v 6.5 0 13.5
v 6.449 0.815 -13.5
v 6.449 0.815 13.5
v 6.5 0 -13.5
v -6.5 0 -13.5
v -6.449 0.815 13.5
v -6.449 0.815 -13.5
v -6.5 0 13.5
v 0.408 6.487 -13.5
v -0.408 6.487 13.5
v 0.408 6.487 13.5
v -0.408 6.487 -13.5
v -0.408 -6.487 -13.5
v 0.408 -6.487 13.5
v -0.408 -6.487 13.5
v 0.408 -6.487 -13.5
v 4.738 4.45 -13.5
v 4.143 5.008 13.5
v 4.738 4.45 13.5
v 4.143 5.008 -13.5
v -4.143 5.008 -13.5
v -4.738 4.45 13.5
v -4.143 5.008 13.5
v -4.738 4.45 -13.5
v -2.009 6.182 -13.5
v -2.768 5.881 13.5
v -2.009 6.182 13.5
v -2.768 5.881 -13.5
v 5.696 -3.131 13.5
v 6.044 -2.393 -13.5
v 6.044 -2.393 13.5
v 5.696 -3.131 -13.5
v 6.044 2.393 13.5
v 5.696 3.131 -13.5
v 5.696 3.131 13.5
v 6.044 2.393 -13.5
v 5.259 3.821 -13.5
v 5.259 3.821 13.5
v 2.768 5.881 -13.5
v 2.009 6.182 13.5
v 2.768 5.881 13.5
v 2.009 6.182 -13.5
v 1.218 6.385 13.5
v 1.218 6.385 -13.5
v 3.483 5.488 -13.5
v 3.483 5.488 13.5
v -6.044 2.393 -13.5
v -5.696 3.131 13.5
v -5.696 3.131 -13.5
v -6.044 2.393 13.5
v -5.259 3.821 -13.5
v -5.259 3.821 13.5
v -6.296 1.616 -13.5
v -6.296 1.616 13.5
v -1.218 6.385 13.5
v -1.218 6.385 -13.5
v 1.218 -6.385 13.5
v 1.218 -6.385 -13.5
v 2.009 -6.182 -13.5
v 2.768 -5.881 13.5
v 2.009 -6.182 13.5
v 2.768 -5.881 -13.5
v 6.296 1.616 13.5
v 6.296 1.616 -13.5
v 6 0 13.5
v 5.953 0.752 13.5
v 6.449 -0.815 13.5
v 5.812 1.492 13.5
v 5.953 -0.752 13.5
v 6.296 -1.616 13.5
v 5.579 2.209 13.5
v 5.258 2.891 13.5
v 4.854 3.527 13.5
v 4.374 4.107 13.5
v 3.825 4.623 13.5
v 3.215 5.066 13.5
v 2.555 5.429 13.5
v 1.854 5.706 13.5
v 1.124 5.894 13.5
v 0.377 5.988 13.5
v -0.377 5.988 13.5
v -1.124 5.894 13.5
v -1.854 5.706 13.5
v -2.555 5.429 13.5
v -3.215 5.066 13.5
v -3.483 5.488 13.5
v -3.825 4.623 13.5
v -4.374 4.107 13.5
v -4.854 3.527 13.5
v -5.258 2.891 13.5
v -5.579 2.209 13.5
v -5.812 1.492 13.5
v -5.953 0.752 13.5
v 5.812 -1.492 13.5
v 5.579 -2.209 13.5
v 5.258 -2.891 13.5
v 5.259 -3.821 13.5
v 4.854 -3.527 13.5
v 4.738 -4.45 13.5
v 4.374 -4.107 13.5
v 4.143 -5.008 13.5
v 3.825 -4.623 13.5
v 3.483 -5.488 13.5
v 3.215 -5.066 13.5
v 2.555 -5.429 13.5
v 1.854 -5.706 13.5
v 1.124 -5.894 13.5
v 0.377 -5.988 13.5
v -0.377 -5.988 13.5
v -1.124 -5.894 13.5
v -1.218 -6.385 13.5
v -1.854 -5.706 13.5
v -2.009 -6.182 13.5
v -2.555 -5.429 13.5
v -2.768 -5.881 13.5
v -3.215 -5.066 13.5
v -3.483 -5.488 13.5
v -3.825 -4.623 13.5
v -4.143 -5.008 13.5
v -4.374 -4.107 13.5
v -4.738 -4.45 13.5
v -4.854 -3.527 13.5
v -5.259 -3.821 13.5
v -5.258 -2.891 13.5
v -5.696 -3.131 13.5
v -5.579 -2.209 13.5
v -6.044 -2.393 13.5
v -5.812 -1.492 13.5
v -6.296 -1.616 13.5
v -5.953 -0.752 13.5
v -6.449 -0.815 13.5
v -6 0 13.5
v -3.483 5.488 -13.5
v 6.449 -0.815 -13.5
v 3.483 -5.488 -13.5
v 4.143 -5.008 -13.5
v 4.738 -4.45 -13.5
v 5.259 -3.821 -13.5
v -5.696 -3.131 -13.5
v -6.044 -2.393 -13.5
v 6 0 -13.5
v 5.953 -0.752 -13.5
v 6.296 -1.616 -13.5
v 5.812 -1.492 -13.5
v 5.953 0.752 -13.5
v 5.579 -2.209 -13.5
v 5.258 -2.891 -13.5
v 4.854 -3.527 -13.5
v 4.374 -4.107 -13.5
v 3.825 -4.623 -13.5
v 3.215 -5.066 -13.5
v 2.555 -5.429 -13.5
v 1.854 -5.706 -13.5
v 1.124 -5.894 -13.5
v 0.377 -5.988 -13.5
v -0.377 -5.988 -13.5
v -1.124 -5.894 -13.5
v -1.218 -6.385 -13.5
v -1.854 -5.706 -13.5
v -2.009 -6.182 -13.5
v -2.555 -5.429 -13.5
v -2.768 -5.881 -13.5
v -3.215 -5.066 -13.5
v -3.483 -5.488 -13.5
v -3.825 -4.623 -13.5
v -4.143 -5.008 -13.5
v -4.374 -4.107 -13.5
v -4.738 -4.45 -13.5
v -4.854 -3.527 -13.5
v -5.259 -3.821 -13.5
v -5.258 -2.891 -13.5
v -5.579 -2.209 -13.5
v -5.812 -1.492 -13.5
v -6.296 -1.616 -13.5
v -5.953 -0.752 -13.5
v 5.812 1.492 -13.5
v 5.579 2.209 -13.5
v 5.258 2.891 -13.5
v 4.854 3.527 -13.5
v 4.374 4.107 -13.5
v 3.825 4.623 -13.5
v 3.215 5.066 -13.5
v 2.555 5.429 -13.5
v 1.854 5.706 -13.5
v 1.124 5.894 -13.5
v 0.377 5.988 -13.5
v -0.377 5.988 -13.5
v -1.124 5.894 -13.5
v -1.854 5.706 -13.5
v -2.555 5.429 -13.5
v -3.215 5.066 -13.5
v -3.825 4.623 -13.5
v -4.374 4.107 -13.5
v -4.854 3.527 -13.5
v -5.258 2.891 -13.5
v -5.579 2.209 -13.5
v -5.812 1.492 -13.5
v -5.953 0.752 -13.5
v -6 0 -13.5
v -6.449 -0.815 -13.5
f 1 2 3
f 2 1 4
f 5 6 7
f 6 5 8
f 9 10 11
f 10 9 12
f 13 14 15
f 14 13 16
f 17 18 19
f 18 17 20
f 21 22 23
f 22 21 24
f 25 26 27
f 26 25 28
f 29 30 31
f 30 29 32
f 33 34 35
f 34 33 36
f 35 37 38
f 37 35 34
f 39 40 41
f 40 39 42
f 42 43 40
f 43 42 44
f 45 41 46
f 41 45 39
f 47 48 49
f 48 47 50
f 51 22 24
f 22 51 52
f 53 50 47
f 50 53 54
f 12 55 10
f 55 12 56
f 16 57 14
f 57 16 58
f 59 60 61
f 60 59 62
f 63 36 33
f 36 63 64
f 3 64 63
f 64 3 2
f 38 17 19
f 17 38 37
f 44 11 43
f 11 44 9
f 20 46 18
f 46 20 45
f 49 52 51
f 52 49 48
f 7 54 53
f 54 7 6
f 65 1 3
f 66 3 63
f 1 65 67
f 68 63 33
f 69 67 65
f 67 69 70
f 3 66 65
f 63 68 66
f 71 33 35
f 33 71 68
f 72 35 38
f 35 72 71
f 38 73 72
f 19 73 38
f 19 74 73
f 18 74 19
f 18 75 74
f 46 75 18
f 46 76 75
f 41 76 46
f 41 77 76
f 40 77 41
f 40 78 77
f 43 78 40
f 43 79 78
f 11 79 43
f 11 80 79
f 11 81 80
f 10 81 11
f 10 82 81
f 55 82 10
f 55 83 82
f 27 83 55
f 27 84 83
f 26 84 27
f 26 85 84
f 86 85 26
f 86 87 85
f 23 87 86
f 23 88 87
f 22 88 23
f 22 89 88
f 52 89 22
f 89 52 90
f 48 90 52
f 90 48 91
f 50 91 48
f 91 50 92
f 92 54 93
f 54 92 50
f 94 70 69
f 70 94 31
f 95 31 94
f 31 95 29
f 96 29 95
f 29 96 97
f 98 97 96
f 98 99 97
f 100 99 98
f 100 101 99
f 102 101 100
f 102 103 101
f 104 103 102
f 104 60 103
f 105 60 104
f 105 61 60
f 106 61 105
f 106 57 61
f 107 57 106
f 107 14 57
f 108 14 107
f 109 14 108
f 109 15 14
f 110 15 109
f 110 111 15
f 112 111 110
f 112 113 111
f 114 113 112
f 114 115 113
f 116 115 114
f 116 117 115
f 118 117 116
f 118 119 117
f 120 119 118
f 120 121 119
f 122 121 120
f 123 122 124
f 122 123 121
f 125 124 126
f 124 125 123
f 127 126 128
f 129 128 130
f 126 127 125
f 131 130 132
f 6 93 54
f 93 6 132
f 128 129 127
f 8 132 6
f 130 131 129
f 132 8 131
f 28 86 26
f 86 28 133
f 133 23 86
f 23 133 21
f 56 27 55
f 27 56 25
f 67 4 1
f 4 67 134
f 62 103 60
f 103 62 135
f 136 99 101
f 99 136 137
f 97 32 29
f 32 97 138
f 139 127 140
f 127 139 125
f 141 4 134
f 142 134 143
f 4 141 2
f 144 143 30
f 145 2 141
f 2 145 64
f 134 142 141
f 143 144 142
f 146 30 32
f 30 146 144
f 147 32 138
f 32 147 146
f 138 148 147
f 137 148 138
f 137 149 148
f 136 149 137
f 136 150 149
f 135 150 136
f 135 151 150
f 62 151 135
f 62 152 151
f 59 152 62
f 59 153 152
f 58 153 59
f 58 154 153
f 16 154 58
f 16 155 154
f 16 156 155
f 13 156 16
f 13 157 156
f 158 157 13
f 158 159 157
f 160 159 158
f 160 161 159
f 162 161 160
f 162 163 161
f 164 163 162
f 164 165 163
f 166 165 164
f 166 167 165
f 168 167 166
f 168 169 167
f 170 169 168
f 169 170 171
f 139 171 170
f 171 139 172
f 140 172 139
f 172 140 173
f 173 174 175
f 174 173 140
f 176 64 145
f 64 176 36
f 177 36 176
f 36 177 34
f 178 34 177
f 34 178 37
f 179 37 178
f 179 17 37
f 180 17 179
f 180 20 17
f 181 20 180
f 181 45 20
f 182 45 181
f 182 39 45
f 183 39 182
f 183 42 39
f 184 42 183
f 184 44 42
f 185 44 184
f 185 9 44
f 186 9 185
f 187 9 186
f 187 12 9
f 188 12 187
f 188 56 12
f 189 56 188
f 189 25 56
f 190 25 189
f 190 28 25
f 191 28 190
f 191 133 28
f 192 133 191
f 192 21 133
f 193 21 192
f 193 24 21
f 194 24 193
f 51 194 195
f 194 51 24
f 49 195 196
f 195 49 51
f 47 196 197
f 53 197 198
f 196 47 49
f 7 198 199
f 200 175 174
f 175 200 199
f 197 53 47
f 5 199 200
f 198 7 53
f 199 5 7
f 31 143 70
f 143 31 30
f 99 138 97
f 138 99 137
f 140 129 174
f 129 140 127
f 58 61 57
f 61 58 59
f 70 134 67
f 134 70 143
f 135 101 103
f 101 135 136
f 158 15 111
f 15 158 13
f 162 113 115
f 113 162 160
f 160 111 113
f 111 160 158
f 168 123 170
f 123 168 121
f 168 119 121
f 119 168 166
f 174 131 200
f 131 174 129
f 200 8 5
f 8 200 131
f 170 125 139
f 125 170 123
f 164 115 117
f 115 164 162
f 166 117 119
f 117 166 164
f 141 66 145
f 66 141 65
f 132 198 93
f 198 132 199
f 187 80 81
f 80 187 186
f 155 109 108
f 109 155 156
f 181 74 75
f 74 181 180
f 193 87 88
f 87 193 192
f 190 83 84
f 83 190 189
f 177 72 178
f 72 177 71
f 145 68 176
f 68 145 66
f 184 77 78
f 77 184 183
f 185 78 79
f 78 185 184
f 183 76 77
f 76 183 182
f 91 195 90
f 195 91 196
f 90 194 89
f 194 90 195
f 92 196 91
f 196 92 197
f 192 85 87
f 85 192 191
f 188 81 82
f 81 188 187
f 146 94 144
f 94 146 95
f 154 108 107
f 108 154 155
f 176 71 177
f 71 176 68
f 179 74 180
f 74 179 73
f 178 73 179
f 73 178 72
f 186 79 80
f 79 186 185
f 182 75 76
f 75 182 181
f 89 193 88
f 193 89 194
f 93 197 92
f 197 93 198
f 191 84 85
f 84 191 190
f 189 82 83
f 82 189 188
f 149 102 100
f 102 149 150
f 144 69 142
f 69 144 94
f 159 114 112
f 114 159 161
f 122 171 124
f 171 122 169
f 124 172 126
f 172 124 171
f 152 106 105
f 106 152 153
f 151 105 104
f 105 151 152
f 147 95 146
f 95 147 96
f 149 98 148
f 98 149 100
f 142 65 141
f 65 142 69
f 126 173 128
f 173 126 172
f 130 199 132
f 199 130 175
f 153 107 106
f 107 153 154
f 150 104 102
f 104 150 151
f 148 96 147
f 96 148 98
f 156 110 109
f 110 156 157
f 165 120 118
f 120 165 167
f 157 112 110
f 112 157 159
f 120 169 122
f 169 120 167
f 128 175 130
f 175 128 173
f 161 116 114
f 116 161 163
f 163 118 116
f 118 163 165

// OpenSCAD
$fn = 50;


difference() {
	union() {
		translate(v = [0, 0, -13.5000000000]) {
			cylinder(h = 27, r = 6.5000000000);
		}
	}
	union() {
		translate(v = [0, 0, -100.0000000000]) {
			cylinder(h = 200, r = 6);
		}
	}
}
